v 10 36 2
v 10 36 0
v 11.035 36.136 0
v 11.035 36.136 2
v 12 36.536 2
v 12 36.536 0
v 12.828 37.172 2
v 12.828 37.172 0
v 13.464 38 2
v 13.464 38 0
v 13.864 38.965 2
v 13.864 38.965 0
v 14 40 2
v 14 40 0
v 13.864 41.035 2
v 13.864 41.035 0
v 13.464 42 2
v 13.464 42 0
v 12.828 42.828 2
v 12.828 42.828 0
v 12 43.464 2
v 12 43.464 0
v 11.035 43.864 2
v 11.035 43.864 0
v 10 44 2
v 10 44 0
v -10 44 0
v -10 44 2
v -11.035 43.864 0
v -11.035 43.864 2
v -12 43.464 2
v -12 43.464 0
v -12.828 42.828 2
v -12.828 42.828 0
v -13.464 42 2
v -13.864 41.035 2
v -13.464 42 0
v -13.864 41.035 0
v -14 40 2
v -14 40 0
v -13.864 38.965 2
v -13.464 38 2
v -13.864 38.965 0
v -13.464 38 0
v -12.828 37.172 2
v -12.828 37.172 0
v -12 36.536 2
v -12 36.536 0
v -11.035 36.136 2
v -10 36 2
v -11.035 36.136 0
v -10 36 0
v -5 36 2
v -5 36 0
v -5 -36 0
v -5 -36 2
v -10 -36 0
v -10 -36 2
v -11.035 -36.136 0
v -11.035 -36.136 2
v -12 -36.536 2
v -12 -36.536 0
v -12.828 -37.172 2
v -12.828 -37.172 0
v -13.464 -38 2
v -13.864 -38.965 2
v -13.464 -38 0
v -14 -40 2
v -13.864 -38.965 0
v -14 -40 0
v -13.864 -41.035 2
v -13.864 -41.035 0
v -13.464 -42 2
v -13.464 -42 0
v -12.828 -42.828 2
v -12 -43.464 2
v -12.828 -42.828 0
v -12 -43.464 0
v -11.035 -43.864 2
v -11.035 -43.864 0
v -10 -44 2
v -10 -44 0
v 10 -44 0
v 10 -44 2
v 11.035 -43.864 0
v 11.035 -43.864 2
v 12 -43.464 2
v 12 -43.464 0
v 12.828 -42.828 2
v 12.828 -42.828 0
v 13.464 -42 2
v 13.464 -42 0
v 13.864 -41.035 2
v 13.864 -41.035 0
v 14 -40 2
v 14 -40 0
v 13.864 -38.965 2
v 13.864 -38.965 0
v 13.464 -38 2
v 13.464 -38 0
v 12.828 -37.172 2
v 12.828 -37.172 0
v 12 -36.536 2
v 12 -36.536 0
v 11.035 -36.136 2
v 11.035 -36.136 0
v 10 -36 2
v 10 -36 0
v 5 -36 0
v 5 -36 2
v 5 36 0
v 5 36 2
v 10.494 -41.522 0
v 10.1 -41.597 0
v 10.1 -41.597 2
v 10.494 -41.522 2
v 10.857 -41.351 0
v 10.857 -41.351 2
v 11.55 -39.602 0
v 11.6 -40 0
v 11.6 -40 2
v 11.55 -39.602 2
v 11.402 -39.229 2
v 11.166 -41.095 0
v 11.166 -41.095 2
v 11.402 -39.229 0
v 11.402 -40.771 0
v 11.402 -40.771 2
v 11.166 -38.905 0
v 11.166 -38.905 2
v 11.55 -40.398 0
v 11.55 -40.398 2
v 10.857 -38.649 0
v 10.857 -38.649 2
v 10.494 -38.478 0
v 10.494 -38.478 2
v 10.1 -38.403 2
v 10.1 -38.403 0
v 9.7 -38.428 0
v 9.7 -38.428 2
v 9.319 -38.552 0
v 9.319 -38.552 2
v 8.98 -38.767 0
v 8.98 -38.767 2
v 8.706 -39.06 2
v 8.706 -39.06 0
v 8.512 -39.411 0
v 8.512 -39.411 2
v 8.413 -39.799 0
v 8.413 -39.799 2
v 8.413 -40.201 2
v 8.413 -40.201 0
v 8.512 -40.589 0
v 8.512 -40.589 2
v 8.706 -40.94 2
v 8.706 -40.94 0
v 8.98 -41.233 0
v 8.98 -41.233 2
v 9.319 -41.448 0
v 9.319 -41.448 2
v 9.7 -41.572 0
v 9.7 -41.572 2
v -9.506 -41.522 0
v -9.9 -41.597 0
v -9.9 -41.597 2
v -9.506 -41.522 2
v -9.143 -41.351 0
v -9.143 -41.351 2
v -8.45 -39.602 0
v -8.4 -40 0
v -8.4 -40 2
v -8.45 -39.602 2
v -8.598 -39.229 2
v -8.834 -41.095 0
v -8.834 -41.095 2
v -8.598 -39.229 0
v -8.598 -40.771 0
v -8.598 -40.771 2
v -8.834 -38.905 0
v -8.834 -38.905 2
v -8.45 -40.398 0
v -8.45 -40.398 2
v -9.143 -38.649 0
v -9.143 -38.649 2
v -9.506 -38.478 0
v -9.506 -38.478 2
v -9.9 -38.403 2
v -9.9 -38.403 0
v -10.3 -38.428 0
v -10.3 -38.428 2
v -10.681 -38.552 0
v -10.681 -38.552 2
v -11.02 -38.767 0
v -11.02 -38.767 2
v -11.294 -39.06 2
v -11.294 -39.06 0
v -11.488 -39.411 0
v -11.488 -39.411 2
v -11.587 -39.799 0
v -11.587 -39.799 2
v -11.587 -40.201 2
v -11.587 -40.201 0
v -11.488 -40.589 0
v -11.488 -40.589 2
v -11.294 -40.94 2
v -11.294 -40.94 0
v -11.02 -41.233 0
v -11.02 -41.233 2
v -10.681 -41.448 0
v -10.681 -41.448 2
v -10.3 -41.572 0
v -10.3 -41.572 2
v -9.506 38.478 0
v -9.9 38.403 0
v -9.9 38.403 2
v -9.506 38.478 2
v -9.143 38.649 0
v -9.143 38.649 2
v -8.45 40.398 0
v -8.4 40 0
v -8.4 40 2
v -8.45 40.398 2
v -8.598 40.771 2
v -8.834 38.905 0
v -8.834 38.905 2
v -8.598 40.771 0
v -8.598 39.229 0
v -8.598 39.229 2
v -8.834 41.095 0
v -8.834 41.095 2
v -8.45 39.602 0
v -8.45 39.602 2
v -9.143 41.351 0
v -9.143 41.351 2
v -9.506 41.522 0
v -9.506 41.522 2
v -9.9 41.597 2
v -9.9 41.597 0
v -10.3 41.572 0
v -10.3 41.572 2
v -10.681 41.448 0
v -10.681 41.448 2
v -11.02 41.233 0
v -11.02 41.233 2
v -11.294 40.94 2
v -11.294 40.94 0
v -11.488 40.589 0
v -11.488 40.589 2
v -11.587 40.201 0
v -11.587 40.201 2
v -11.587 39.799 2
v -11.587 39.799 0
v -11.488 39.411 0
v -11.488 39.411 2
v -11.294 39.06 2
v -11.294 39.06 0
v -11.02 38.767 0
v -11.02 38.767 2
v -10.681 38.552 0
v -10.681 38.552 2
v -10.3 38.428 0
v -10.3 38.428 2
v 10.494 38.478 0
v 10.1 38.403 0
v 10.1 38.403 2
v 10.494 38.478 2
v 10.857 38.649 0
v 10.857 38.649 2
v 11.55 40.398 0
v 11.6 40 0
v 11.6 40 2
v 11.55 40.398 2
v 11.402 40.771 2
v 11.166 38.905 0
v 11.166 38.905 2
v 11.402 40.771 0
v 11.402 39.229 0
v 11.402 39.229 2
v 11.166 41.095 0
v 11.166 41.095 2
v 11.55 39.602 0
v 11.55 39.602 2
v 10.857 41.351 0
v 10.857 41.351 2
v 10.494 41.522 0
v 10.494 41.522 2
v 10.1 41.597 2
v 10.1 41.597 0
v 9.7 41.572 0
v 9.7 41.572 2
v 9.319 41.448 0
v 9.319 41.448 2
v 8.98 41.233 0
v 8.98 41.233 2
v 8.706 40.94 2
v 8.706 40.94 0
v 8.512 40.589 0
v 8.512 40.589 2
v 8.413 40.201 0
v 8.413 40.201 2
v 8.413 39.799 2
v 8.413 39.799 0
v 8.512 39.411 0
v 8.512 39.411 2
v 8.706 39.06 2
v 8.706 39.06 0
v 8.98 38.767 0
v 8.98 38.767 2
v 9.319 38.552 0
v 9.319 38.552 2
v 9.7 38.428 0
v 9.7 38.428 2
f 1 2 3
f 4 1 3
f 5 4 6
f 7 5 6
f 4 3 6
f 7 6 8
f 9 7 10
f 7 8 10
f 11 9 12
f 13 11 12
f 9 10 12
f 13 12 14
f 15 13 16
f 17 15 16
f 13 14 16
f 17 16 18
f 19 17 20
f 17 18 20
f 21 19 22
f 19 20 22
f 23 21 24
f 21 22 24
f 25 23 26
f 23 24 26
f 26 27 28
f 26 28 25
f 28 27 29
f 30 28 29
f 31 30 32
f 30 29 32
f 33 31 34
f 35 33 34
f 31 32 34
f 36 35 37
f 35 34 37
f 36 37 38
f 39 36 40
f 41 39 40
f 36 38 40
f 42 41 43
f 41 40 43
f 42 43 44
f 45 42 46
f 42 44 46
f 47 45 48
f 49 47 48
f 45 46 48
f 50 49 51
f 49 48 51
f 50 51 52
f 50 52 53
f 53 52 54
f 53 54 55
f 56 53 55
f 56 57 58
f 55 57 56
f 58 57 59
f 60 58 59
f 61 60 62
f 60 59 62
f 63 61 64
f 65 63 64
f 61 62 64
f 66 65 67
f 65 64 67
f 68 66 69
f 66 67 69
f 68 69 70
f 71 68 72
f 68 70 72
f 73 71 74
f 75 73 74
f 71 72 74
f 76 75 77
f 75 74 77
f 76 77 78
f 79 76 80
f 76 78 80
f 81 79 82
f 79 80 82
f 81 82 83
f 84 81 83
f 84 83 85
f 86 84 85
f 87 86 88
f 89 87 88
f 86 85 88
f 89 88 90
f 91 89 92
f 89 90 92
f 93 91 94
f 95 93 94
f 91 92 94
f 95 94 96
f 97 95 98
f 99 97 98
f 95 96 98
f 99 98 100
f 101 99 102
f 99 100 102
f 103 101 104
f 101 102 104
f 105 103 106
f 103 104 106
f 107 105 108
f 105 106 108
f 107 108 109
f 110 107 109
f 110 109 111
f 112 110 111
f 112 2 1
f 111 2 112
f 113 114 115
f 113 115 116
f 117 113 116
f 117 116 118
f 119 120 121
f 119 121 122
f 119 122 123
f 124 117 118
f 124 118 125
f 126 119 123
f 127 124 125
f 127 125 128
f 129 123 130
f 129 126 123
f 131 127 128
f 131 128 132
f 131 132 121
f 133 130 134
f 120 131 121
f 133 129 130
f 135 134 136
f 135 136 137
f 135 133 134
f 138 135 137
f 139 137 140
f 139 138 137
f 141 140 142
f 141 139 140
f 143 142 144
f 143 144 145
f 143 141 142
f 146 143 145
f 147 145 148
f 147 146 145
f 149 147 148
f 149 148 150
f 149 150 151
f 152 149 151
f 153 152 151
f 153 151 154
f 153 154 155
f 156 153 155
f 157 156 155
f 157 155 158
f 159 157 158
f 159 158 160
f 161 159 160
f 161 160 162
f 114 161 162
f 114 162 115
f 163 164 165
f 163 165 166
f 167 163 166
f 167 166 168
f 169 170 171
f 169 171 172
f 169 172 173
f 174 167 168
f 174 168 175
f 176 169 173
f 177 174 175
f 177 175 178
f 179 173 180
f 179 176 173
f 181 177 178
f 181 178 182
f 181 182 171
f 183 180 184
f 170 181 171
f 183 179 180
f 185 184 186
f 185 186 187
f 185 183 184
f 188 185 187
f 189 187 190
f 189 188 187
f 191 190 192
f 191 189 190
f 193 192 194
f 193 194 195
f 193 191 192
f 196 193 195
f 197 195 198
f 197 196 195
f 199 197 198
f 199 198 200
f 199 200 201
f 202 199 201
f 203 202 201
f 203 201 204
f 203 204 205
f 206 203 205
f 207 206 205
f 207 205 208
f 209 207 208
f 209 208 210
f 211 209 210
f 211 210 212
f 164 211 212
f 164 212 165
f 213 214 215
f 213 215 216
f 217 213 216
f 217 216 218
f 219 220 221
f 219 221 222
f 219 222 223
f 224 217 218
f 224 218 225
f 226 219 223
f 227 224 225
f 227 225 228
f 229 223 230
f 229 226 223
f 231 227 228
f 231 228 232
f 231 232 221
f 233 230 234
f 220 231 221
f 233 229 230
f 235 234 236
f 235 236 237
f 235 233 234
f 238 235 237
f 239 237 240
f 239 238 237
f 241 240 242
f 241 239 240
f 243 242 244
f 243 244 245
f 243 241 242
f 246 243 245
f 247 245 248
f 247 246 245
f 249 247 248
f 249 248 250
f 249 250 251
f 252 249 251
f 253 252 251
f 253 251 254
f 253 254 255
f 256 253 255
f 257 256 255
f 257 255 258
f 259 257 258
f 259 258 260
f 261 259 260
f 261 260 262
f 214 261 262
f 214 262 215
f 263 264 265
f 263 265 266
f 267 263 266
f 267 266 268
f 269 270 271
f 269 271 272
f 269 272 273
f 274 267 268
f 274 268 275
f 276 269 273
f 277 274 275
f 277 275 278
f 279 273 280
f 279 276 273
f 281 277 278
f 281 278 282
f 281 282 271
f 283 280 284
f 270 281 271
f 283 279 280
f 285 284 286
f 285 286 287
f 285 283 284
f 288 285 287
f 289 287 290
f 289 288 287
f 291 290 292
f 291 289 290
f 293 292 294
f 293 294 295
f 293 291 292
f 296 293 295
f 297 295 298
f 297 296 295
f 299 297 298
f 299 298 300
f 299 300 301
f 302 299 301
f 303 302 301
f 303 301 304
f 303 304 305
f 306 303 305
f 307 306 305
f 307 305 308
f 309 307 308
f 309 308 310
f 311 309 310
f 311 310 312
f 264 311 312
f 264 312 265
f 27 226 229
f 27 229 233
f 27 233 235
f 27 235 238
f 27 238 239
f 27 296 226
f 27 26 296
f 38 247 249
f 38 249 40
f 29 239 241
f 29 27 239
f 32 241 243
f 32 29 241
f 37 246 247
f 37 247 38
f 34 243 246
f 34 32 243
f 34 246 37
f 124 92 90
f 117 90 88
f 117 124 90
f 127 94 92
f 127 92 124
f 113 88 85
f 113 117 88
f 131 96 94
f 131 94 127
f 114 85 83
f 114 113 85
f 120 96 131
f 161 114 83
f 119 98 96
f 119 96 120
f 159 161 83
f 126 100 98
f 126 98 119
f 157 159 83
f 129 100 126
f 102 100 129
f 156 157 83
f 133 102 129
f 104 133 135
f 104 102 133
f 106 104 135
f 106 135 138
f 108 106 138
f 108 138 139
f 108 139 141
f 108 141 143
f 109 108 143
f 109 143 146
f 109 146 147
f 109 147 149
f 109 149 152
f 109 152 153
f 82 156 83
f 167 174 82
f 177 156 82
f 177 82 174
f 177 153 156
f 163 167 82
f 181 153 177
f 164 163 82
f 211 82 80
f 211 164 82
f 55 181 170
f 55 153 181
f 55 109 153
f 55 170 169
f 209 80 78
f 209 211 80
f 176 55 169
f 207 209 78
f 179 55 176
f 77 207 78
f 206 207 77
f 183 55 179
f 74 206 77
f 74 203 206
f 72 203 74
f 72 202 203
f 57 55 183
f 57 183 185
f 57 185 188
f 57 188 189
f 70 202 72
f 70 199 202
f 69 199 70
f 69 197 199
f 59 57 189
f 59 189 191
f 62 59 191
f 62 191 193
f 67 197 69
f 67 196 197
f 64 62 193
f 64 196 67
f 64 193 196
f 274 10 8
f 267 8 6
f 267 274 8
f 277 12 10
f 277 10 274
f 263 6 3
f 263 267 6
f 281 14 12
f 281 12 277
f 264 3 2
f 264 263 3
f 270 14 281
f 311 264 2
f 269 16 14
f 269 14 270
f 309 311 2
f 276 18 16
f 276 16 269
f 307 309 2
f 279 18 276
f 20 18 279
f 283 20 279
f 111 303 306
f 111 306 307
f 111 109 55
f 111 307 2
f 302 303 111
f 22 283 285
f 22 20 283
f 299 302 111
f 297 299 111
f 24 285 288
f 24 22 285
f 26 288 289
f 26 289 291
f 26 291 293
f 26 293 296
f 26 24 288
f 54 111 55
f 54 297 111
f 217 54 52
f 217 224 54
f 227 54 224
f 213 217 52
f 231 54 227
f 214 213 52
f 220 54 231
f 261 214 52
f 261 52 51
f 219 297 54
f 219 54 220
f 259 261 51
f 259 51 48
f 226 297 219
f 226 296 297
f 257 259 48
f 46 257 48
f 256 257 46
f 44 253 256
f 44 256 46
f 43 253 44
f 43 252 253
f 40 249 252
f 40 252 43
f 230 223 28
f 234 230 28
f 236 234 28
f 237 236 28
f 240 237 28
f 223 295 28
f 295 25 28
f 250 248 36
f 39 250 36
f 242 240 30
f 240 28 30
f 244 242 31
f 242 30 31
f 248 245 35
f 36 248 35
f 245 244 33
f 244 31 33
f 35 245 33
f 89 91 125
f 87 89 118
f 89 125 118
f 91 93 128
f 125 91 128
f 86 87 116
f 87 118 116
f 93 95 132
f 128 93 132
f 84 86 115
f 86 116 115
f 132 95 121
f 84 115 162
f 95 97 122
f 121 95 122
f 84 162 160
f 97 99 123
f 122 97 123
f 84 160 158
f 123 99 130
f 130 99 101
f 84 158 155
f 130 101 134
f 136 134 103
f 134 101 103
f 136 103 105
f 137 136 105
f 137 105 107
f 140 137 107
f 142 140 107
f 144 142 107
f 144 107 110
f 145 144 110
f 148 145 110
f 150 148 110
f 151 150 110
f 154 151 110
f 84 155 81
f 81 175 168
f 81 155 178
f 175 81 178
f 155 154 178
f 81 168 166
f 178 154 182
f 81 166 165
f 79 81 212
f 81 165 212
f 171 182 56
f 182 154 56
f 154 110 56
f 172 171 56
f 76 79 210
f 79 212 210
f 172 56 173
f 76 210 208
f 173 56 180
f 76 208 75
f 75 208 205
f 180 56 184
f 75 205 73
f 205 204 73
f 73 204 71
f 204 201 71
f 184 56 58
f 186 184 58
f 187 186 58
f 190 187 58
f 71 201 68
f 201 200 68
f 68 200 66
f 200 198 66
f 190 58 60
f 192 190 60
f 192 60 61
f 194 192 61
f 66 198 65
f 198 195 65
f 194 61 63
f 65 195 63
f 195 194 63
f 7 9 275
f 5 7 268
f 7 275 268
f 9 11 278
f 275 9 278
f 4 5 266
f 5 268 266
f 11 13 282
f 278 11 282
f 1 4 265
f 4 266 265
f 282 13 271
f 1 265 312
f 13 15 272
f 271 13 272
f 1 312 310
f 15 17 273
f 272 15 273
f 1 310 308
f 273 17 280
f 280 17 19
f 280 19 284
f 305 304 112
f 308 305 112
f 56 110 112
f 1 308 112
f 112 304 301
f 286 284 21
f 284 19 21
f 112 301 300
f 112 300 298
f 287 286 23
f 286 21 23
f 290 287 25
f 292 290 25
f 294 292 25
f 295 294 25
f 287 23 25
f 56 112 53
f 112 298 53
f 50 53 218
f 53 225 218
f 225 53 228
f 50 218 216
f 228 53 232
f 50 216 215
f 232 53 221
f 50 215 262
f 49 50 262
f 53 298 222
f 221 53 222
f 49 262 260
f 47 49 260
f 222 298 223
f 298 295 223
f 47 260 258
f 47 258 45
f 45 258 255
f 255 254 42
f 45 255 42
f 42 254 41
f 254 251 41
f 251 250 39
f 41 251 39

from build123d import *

# Parameters (mm, degrees)
SKETCH_R  = 1.6
PAD_DEPTH = 2


with BuildPart() as part:
    # Sketch → Pad (new body)
    with BuildSketch(Plane.XY):
        with BuildLine():
            ThreePointArc((-10, 44), (-14, 40), (-10, 36))
            Line((-10, 36), (-5, 36))
            Line((-5, 36), (-5, -36))
            Line((-10, -36), (-5, -36))
            ThreePointArc((-10, -36), (-14, -40), (-10, -44))
            Line((-10, -44), (10, -44))
            ThreePointArc((10, -44), (14, -40), (10, -36))
            Line((10, -36), (5, -36))
            Line((5, -36), (5, 36))
            Line((10, 36), (5, 36))
            ThreePointArc((10, 36), (14, 40), (10, 44))
            Line((-10, 44), (10, 44))
        make_face()
        with Locations((10, 40)):
            Circle(SKETCH_R, mode=Mode.SUBTRACT)
        with Locations((-10, 40)):
            Circle(SKETCH_R, mode=Mode.SUBTRACT)
        with Locations((-10, -40)):
            Circle(SKETCH_R, mode=Mode.SUBTRACT)
        with Locations((10, -40)):
            Circle(SKETCH_R, mode=Mode.SUBTRACT)
    extrude(amount=PAD_DEPTH)


solid = part.part
